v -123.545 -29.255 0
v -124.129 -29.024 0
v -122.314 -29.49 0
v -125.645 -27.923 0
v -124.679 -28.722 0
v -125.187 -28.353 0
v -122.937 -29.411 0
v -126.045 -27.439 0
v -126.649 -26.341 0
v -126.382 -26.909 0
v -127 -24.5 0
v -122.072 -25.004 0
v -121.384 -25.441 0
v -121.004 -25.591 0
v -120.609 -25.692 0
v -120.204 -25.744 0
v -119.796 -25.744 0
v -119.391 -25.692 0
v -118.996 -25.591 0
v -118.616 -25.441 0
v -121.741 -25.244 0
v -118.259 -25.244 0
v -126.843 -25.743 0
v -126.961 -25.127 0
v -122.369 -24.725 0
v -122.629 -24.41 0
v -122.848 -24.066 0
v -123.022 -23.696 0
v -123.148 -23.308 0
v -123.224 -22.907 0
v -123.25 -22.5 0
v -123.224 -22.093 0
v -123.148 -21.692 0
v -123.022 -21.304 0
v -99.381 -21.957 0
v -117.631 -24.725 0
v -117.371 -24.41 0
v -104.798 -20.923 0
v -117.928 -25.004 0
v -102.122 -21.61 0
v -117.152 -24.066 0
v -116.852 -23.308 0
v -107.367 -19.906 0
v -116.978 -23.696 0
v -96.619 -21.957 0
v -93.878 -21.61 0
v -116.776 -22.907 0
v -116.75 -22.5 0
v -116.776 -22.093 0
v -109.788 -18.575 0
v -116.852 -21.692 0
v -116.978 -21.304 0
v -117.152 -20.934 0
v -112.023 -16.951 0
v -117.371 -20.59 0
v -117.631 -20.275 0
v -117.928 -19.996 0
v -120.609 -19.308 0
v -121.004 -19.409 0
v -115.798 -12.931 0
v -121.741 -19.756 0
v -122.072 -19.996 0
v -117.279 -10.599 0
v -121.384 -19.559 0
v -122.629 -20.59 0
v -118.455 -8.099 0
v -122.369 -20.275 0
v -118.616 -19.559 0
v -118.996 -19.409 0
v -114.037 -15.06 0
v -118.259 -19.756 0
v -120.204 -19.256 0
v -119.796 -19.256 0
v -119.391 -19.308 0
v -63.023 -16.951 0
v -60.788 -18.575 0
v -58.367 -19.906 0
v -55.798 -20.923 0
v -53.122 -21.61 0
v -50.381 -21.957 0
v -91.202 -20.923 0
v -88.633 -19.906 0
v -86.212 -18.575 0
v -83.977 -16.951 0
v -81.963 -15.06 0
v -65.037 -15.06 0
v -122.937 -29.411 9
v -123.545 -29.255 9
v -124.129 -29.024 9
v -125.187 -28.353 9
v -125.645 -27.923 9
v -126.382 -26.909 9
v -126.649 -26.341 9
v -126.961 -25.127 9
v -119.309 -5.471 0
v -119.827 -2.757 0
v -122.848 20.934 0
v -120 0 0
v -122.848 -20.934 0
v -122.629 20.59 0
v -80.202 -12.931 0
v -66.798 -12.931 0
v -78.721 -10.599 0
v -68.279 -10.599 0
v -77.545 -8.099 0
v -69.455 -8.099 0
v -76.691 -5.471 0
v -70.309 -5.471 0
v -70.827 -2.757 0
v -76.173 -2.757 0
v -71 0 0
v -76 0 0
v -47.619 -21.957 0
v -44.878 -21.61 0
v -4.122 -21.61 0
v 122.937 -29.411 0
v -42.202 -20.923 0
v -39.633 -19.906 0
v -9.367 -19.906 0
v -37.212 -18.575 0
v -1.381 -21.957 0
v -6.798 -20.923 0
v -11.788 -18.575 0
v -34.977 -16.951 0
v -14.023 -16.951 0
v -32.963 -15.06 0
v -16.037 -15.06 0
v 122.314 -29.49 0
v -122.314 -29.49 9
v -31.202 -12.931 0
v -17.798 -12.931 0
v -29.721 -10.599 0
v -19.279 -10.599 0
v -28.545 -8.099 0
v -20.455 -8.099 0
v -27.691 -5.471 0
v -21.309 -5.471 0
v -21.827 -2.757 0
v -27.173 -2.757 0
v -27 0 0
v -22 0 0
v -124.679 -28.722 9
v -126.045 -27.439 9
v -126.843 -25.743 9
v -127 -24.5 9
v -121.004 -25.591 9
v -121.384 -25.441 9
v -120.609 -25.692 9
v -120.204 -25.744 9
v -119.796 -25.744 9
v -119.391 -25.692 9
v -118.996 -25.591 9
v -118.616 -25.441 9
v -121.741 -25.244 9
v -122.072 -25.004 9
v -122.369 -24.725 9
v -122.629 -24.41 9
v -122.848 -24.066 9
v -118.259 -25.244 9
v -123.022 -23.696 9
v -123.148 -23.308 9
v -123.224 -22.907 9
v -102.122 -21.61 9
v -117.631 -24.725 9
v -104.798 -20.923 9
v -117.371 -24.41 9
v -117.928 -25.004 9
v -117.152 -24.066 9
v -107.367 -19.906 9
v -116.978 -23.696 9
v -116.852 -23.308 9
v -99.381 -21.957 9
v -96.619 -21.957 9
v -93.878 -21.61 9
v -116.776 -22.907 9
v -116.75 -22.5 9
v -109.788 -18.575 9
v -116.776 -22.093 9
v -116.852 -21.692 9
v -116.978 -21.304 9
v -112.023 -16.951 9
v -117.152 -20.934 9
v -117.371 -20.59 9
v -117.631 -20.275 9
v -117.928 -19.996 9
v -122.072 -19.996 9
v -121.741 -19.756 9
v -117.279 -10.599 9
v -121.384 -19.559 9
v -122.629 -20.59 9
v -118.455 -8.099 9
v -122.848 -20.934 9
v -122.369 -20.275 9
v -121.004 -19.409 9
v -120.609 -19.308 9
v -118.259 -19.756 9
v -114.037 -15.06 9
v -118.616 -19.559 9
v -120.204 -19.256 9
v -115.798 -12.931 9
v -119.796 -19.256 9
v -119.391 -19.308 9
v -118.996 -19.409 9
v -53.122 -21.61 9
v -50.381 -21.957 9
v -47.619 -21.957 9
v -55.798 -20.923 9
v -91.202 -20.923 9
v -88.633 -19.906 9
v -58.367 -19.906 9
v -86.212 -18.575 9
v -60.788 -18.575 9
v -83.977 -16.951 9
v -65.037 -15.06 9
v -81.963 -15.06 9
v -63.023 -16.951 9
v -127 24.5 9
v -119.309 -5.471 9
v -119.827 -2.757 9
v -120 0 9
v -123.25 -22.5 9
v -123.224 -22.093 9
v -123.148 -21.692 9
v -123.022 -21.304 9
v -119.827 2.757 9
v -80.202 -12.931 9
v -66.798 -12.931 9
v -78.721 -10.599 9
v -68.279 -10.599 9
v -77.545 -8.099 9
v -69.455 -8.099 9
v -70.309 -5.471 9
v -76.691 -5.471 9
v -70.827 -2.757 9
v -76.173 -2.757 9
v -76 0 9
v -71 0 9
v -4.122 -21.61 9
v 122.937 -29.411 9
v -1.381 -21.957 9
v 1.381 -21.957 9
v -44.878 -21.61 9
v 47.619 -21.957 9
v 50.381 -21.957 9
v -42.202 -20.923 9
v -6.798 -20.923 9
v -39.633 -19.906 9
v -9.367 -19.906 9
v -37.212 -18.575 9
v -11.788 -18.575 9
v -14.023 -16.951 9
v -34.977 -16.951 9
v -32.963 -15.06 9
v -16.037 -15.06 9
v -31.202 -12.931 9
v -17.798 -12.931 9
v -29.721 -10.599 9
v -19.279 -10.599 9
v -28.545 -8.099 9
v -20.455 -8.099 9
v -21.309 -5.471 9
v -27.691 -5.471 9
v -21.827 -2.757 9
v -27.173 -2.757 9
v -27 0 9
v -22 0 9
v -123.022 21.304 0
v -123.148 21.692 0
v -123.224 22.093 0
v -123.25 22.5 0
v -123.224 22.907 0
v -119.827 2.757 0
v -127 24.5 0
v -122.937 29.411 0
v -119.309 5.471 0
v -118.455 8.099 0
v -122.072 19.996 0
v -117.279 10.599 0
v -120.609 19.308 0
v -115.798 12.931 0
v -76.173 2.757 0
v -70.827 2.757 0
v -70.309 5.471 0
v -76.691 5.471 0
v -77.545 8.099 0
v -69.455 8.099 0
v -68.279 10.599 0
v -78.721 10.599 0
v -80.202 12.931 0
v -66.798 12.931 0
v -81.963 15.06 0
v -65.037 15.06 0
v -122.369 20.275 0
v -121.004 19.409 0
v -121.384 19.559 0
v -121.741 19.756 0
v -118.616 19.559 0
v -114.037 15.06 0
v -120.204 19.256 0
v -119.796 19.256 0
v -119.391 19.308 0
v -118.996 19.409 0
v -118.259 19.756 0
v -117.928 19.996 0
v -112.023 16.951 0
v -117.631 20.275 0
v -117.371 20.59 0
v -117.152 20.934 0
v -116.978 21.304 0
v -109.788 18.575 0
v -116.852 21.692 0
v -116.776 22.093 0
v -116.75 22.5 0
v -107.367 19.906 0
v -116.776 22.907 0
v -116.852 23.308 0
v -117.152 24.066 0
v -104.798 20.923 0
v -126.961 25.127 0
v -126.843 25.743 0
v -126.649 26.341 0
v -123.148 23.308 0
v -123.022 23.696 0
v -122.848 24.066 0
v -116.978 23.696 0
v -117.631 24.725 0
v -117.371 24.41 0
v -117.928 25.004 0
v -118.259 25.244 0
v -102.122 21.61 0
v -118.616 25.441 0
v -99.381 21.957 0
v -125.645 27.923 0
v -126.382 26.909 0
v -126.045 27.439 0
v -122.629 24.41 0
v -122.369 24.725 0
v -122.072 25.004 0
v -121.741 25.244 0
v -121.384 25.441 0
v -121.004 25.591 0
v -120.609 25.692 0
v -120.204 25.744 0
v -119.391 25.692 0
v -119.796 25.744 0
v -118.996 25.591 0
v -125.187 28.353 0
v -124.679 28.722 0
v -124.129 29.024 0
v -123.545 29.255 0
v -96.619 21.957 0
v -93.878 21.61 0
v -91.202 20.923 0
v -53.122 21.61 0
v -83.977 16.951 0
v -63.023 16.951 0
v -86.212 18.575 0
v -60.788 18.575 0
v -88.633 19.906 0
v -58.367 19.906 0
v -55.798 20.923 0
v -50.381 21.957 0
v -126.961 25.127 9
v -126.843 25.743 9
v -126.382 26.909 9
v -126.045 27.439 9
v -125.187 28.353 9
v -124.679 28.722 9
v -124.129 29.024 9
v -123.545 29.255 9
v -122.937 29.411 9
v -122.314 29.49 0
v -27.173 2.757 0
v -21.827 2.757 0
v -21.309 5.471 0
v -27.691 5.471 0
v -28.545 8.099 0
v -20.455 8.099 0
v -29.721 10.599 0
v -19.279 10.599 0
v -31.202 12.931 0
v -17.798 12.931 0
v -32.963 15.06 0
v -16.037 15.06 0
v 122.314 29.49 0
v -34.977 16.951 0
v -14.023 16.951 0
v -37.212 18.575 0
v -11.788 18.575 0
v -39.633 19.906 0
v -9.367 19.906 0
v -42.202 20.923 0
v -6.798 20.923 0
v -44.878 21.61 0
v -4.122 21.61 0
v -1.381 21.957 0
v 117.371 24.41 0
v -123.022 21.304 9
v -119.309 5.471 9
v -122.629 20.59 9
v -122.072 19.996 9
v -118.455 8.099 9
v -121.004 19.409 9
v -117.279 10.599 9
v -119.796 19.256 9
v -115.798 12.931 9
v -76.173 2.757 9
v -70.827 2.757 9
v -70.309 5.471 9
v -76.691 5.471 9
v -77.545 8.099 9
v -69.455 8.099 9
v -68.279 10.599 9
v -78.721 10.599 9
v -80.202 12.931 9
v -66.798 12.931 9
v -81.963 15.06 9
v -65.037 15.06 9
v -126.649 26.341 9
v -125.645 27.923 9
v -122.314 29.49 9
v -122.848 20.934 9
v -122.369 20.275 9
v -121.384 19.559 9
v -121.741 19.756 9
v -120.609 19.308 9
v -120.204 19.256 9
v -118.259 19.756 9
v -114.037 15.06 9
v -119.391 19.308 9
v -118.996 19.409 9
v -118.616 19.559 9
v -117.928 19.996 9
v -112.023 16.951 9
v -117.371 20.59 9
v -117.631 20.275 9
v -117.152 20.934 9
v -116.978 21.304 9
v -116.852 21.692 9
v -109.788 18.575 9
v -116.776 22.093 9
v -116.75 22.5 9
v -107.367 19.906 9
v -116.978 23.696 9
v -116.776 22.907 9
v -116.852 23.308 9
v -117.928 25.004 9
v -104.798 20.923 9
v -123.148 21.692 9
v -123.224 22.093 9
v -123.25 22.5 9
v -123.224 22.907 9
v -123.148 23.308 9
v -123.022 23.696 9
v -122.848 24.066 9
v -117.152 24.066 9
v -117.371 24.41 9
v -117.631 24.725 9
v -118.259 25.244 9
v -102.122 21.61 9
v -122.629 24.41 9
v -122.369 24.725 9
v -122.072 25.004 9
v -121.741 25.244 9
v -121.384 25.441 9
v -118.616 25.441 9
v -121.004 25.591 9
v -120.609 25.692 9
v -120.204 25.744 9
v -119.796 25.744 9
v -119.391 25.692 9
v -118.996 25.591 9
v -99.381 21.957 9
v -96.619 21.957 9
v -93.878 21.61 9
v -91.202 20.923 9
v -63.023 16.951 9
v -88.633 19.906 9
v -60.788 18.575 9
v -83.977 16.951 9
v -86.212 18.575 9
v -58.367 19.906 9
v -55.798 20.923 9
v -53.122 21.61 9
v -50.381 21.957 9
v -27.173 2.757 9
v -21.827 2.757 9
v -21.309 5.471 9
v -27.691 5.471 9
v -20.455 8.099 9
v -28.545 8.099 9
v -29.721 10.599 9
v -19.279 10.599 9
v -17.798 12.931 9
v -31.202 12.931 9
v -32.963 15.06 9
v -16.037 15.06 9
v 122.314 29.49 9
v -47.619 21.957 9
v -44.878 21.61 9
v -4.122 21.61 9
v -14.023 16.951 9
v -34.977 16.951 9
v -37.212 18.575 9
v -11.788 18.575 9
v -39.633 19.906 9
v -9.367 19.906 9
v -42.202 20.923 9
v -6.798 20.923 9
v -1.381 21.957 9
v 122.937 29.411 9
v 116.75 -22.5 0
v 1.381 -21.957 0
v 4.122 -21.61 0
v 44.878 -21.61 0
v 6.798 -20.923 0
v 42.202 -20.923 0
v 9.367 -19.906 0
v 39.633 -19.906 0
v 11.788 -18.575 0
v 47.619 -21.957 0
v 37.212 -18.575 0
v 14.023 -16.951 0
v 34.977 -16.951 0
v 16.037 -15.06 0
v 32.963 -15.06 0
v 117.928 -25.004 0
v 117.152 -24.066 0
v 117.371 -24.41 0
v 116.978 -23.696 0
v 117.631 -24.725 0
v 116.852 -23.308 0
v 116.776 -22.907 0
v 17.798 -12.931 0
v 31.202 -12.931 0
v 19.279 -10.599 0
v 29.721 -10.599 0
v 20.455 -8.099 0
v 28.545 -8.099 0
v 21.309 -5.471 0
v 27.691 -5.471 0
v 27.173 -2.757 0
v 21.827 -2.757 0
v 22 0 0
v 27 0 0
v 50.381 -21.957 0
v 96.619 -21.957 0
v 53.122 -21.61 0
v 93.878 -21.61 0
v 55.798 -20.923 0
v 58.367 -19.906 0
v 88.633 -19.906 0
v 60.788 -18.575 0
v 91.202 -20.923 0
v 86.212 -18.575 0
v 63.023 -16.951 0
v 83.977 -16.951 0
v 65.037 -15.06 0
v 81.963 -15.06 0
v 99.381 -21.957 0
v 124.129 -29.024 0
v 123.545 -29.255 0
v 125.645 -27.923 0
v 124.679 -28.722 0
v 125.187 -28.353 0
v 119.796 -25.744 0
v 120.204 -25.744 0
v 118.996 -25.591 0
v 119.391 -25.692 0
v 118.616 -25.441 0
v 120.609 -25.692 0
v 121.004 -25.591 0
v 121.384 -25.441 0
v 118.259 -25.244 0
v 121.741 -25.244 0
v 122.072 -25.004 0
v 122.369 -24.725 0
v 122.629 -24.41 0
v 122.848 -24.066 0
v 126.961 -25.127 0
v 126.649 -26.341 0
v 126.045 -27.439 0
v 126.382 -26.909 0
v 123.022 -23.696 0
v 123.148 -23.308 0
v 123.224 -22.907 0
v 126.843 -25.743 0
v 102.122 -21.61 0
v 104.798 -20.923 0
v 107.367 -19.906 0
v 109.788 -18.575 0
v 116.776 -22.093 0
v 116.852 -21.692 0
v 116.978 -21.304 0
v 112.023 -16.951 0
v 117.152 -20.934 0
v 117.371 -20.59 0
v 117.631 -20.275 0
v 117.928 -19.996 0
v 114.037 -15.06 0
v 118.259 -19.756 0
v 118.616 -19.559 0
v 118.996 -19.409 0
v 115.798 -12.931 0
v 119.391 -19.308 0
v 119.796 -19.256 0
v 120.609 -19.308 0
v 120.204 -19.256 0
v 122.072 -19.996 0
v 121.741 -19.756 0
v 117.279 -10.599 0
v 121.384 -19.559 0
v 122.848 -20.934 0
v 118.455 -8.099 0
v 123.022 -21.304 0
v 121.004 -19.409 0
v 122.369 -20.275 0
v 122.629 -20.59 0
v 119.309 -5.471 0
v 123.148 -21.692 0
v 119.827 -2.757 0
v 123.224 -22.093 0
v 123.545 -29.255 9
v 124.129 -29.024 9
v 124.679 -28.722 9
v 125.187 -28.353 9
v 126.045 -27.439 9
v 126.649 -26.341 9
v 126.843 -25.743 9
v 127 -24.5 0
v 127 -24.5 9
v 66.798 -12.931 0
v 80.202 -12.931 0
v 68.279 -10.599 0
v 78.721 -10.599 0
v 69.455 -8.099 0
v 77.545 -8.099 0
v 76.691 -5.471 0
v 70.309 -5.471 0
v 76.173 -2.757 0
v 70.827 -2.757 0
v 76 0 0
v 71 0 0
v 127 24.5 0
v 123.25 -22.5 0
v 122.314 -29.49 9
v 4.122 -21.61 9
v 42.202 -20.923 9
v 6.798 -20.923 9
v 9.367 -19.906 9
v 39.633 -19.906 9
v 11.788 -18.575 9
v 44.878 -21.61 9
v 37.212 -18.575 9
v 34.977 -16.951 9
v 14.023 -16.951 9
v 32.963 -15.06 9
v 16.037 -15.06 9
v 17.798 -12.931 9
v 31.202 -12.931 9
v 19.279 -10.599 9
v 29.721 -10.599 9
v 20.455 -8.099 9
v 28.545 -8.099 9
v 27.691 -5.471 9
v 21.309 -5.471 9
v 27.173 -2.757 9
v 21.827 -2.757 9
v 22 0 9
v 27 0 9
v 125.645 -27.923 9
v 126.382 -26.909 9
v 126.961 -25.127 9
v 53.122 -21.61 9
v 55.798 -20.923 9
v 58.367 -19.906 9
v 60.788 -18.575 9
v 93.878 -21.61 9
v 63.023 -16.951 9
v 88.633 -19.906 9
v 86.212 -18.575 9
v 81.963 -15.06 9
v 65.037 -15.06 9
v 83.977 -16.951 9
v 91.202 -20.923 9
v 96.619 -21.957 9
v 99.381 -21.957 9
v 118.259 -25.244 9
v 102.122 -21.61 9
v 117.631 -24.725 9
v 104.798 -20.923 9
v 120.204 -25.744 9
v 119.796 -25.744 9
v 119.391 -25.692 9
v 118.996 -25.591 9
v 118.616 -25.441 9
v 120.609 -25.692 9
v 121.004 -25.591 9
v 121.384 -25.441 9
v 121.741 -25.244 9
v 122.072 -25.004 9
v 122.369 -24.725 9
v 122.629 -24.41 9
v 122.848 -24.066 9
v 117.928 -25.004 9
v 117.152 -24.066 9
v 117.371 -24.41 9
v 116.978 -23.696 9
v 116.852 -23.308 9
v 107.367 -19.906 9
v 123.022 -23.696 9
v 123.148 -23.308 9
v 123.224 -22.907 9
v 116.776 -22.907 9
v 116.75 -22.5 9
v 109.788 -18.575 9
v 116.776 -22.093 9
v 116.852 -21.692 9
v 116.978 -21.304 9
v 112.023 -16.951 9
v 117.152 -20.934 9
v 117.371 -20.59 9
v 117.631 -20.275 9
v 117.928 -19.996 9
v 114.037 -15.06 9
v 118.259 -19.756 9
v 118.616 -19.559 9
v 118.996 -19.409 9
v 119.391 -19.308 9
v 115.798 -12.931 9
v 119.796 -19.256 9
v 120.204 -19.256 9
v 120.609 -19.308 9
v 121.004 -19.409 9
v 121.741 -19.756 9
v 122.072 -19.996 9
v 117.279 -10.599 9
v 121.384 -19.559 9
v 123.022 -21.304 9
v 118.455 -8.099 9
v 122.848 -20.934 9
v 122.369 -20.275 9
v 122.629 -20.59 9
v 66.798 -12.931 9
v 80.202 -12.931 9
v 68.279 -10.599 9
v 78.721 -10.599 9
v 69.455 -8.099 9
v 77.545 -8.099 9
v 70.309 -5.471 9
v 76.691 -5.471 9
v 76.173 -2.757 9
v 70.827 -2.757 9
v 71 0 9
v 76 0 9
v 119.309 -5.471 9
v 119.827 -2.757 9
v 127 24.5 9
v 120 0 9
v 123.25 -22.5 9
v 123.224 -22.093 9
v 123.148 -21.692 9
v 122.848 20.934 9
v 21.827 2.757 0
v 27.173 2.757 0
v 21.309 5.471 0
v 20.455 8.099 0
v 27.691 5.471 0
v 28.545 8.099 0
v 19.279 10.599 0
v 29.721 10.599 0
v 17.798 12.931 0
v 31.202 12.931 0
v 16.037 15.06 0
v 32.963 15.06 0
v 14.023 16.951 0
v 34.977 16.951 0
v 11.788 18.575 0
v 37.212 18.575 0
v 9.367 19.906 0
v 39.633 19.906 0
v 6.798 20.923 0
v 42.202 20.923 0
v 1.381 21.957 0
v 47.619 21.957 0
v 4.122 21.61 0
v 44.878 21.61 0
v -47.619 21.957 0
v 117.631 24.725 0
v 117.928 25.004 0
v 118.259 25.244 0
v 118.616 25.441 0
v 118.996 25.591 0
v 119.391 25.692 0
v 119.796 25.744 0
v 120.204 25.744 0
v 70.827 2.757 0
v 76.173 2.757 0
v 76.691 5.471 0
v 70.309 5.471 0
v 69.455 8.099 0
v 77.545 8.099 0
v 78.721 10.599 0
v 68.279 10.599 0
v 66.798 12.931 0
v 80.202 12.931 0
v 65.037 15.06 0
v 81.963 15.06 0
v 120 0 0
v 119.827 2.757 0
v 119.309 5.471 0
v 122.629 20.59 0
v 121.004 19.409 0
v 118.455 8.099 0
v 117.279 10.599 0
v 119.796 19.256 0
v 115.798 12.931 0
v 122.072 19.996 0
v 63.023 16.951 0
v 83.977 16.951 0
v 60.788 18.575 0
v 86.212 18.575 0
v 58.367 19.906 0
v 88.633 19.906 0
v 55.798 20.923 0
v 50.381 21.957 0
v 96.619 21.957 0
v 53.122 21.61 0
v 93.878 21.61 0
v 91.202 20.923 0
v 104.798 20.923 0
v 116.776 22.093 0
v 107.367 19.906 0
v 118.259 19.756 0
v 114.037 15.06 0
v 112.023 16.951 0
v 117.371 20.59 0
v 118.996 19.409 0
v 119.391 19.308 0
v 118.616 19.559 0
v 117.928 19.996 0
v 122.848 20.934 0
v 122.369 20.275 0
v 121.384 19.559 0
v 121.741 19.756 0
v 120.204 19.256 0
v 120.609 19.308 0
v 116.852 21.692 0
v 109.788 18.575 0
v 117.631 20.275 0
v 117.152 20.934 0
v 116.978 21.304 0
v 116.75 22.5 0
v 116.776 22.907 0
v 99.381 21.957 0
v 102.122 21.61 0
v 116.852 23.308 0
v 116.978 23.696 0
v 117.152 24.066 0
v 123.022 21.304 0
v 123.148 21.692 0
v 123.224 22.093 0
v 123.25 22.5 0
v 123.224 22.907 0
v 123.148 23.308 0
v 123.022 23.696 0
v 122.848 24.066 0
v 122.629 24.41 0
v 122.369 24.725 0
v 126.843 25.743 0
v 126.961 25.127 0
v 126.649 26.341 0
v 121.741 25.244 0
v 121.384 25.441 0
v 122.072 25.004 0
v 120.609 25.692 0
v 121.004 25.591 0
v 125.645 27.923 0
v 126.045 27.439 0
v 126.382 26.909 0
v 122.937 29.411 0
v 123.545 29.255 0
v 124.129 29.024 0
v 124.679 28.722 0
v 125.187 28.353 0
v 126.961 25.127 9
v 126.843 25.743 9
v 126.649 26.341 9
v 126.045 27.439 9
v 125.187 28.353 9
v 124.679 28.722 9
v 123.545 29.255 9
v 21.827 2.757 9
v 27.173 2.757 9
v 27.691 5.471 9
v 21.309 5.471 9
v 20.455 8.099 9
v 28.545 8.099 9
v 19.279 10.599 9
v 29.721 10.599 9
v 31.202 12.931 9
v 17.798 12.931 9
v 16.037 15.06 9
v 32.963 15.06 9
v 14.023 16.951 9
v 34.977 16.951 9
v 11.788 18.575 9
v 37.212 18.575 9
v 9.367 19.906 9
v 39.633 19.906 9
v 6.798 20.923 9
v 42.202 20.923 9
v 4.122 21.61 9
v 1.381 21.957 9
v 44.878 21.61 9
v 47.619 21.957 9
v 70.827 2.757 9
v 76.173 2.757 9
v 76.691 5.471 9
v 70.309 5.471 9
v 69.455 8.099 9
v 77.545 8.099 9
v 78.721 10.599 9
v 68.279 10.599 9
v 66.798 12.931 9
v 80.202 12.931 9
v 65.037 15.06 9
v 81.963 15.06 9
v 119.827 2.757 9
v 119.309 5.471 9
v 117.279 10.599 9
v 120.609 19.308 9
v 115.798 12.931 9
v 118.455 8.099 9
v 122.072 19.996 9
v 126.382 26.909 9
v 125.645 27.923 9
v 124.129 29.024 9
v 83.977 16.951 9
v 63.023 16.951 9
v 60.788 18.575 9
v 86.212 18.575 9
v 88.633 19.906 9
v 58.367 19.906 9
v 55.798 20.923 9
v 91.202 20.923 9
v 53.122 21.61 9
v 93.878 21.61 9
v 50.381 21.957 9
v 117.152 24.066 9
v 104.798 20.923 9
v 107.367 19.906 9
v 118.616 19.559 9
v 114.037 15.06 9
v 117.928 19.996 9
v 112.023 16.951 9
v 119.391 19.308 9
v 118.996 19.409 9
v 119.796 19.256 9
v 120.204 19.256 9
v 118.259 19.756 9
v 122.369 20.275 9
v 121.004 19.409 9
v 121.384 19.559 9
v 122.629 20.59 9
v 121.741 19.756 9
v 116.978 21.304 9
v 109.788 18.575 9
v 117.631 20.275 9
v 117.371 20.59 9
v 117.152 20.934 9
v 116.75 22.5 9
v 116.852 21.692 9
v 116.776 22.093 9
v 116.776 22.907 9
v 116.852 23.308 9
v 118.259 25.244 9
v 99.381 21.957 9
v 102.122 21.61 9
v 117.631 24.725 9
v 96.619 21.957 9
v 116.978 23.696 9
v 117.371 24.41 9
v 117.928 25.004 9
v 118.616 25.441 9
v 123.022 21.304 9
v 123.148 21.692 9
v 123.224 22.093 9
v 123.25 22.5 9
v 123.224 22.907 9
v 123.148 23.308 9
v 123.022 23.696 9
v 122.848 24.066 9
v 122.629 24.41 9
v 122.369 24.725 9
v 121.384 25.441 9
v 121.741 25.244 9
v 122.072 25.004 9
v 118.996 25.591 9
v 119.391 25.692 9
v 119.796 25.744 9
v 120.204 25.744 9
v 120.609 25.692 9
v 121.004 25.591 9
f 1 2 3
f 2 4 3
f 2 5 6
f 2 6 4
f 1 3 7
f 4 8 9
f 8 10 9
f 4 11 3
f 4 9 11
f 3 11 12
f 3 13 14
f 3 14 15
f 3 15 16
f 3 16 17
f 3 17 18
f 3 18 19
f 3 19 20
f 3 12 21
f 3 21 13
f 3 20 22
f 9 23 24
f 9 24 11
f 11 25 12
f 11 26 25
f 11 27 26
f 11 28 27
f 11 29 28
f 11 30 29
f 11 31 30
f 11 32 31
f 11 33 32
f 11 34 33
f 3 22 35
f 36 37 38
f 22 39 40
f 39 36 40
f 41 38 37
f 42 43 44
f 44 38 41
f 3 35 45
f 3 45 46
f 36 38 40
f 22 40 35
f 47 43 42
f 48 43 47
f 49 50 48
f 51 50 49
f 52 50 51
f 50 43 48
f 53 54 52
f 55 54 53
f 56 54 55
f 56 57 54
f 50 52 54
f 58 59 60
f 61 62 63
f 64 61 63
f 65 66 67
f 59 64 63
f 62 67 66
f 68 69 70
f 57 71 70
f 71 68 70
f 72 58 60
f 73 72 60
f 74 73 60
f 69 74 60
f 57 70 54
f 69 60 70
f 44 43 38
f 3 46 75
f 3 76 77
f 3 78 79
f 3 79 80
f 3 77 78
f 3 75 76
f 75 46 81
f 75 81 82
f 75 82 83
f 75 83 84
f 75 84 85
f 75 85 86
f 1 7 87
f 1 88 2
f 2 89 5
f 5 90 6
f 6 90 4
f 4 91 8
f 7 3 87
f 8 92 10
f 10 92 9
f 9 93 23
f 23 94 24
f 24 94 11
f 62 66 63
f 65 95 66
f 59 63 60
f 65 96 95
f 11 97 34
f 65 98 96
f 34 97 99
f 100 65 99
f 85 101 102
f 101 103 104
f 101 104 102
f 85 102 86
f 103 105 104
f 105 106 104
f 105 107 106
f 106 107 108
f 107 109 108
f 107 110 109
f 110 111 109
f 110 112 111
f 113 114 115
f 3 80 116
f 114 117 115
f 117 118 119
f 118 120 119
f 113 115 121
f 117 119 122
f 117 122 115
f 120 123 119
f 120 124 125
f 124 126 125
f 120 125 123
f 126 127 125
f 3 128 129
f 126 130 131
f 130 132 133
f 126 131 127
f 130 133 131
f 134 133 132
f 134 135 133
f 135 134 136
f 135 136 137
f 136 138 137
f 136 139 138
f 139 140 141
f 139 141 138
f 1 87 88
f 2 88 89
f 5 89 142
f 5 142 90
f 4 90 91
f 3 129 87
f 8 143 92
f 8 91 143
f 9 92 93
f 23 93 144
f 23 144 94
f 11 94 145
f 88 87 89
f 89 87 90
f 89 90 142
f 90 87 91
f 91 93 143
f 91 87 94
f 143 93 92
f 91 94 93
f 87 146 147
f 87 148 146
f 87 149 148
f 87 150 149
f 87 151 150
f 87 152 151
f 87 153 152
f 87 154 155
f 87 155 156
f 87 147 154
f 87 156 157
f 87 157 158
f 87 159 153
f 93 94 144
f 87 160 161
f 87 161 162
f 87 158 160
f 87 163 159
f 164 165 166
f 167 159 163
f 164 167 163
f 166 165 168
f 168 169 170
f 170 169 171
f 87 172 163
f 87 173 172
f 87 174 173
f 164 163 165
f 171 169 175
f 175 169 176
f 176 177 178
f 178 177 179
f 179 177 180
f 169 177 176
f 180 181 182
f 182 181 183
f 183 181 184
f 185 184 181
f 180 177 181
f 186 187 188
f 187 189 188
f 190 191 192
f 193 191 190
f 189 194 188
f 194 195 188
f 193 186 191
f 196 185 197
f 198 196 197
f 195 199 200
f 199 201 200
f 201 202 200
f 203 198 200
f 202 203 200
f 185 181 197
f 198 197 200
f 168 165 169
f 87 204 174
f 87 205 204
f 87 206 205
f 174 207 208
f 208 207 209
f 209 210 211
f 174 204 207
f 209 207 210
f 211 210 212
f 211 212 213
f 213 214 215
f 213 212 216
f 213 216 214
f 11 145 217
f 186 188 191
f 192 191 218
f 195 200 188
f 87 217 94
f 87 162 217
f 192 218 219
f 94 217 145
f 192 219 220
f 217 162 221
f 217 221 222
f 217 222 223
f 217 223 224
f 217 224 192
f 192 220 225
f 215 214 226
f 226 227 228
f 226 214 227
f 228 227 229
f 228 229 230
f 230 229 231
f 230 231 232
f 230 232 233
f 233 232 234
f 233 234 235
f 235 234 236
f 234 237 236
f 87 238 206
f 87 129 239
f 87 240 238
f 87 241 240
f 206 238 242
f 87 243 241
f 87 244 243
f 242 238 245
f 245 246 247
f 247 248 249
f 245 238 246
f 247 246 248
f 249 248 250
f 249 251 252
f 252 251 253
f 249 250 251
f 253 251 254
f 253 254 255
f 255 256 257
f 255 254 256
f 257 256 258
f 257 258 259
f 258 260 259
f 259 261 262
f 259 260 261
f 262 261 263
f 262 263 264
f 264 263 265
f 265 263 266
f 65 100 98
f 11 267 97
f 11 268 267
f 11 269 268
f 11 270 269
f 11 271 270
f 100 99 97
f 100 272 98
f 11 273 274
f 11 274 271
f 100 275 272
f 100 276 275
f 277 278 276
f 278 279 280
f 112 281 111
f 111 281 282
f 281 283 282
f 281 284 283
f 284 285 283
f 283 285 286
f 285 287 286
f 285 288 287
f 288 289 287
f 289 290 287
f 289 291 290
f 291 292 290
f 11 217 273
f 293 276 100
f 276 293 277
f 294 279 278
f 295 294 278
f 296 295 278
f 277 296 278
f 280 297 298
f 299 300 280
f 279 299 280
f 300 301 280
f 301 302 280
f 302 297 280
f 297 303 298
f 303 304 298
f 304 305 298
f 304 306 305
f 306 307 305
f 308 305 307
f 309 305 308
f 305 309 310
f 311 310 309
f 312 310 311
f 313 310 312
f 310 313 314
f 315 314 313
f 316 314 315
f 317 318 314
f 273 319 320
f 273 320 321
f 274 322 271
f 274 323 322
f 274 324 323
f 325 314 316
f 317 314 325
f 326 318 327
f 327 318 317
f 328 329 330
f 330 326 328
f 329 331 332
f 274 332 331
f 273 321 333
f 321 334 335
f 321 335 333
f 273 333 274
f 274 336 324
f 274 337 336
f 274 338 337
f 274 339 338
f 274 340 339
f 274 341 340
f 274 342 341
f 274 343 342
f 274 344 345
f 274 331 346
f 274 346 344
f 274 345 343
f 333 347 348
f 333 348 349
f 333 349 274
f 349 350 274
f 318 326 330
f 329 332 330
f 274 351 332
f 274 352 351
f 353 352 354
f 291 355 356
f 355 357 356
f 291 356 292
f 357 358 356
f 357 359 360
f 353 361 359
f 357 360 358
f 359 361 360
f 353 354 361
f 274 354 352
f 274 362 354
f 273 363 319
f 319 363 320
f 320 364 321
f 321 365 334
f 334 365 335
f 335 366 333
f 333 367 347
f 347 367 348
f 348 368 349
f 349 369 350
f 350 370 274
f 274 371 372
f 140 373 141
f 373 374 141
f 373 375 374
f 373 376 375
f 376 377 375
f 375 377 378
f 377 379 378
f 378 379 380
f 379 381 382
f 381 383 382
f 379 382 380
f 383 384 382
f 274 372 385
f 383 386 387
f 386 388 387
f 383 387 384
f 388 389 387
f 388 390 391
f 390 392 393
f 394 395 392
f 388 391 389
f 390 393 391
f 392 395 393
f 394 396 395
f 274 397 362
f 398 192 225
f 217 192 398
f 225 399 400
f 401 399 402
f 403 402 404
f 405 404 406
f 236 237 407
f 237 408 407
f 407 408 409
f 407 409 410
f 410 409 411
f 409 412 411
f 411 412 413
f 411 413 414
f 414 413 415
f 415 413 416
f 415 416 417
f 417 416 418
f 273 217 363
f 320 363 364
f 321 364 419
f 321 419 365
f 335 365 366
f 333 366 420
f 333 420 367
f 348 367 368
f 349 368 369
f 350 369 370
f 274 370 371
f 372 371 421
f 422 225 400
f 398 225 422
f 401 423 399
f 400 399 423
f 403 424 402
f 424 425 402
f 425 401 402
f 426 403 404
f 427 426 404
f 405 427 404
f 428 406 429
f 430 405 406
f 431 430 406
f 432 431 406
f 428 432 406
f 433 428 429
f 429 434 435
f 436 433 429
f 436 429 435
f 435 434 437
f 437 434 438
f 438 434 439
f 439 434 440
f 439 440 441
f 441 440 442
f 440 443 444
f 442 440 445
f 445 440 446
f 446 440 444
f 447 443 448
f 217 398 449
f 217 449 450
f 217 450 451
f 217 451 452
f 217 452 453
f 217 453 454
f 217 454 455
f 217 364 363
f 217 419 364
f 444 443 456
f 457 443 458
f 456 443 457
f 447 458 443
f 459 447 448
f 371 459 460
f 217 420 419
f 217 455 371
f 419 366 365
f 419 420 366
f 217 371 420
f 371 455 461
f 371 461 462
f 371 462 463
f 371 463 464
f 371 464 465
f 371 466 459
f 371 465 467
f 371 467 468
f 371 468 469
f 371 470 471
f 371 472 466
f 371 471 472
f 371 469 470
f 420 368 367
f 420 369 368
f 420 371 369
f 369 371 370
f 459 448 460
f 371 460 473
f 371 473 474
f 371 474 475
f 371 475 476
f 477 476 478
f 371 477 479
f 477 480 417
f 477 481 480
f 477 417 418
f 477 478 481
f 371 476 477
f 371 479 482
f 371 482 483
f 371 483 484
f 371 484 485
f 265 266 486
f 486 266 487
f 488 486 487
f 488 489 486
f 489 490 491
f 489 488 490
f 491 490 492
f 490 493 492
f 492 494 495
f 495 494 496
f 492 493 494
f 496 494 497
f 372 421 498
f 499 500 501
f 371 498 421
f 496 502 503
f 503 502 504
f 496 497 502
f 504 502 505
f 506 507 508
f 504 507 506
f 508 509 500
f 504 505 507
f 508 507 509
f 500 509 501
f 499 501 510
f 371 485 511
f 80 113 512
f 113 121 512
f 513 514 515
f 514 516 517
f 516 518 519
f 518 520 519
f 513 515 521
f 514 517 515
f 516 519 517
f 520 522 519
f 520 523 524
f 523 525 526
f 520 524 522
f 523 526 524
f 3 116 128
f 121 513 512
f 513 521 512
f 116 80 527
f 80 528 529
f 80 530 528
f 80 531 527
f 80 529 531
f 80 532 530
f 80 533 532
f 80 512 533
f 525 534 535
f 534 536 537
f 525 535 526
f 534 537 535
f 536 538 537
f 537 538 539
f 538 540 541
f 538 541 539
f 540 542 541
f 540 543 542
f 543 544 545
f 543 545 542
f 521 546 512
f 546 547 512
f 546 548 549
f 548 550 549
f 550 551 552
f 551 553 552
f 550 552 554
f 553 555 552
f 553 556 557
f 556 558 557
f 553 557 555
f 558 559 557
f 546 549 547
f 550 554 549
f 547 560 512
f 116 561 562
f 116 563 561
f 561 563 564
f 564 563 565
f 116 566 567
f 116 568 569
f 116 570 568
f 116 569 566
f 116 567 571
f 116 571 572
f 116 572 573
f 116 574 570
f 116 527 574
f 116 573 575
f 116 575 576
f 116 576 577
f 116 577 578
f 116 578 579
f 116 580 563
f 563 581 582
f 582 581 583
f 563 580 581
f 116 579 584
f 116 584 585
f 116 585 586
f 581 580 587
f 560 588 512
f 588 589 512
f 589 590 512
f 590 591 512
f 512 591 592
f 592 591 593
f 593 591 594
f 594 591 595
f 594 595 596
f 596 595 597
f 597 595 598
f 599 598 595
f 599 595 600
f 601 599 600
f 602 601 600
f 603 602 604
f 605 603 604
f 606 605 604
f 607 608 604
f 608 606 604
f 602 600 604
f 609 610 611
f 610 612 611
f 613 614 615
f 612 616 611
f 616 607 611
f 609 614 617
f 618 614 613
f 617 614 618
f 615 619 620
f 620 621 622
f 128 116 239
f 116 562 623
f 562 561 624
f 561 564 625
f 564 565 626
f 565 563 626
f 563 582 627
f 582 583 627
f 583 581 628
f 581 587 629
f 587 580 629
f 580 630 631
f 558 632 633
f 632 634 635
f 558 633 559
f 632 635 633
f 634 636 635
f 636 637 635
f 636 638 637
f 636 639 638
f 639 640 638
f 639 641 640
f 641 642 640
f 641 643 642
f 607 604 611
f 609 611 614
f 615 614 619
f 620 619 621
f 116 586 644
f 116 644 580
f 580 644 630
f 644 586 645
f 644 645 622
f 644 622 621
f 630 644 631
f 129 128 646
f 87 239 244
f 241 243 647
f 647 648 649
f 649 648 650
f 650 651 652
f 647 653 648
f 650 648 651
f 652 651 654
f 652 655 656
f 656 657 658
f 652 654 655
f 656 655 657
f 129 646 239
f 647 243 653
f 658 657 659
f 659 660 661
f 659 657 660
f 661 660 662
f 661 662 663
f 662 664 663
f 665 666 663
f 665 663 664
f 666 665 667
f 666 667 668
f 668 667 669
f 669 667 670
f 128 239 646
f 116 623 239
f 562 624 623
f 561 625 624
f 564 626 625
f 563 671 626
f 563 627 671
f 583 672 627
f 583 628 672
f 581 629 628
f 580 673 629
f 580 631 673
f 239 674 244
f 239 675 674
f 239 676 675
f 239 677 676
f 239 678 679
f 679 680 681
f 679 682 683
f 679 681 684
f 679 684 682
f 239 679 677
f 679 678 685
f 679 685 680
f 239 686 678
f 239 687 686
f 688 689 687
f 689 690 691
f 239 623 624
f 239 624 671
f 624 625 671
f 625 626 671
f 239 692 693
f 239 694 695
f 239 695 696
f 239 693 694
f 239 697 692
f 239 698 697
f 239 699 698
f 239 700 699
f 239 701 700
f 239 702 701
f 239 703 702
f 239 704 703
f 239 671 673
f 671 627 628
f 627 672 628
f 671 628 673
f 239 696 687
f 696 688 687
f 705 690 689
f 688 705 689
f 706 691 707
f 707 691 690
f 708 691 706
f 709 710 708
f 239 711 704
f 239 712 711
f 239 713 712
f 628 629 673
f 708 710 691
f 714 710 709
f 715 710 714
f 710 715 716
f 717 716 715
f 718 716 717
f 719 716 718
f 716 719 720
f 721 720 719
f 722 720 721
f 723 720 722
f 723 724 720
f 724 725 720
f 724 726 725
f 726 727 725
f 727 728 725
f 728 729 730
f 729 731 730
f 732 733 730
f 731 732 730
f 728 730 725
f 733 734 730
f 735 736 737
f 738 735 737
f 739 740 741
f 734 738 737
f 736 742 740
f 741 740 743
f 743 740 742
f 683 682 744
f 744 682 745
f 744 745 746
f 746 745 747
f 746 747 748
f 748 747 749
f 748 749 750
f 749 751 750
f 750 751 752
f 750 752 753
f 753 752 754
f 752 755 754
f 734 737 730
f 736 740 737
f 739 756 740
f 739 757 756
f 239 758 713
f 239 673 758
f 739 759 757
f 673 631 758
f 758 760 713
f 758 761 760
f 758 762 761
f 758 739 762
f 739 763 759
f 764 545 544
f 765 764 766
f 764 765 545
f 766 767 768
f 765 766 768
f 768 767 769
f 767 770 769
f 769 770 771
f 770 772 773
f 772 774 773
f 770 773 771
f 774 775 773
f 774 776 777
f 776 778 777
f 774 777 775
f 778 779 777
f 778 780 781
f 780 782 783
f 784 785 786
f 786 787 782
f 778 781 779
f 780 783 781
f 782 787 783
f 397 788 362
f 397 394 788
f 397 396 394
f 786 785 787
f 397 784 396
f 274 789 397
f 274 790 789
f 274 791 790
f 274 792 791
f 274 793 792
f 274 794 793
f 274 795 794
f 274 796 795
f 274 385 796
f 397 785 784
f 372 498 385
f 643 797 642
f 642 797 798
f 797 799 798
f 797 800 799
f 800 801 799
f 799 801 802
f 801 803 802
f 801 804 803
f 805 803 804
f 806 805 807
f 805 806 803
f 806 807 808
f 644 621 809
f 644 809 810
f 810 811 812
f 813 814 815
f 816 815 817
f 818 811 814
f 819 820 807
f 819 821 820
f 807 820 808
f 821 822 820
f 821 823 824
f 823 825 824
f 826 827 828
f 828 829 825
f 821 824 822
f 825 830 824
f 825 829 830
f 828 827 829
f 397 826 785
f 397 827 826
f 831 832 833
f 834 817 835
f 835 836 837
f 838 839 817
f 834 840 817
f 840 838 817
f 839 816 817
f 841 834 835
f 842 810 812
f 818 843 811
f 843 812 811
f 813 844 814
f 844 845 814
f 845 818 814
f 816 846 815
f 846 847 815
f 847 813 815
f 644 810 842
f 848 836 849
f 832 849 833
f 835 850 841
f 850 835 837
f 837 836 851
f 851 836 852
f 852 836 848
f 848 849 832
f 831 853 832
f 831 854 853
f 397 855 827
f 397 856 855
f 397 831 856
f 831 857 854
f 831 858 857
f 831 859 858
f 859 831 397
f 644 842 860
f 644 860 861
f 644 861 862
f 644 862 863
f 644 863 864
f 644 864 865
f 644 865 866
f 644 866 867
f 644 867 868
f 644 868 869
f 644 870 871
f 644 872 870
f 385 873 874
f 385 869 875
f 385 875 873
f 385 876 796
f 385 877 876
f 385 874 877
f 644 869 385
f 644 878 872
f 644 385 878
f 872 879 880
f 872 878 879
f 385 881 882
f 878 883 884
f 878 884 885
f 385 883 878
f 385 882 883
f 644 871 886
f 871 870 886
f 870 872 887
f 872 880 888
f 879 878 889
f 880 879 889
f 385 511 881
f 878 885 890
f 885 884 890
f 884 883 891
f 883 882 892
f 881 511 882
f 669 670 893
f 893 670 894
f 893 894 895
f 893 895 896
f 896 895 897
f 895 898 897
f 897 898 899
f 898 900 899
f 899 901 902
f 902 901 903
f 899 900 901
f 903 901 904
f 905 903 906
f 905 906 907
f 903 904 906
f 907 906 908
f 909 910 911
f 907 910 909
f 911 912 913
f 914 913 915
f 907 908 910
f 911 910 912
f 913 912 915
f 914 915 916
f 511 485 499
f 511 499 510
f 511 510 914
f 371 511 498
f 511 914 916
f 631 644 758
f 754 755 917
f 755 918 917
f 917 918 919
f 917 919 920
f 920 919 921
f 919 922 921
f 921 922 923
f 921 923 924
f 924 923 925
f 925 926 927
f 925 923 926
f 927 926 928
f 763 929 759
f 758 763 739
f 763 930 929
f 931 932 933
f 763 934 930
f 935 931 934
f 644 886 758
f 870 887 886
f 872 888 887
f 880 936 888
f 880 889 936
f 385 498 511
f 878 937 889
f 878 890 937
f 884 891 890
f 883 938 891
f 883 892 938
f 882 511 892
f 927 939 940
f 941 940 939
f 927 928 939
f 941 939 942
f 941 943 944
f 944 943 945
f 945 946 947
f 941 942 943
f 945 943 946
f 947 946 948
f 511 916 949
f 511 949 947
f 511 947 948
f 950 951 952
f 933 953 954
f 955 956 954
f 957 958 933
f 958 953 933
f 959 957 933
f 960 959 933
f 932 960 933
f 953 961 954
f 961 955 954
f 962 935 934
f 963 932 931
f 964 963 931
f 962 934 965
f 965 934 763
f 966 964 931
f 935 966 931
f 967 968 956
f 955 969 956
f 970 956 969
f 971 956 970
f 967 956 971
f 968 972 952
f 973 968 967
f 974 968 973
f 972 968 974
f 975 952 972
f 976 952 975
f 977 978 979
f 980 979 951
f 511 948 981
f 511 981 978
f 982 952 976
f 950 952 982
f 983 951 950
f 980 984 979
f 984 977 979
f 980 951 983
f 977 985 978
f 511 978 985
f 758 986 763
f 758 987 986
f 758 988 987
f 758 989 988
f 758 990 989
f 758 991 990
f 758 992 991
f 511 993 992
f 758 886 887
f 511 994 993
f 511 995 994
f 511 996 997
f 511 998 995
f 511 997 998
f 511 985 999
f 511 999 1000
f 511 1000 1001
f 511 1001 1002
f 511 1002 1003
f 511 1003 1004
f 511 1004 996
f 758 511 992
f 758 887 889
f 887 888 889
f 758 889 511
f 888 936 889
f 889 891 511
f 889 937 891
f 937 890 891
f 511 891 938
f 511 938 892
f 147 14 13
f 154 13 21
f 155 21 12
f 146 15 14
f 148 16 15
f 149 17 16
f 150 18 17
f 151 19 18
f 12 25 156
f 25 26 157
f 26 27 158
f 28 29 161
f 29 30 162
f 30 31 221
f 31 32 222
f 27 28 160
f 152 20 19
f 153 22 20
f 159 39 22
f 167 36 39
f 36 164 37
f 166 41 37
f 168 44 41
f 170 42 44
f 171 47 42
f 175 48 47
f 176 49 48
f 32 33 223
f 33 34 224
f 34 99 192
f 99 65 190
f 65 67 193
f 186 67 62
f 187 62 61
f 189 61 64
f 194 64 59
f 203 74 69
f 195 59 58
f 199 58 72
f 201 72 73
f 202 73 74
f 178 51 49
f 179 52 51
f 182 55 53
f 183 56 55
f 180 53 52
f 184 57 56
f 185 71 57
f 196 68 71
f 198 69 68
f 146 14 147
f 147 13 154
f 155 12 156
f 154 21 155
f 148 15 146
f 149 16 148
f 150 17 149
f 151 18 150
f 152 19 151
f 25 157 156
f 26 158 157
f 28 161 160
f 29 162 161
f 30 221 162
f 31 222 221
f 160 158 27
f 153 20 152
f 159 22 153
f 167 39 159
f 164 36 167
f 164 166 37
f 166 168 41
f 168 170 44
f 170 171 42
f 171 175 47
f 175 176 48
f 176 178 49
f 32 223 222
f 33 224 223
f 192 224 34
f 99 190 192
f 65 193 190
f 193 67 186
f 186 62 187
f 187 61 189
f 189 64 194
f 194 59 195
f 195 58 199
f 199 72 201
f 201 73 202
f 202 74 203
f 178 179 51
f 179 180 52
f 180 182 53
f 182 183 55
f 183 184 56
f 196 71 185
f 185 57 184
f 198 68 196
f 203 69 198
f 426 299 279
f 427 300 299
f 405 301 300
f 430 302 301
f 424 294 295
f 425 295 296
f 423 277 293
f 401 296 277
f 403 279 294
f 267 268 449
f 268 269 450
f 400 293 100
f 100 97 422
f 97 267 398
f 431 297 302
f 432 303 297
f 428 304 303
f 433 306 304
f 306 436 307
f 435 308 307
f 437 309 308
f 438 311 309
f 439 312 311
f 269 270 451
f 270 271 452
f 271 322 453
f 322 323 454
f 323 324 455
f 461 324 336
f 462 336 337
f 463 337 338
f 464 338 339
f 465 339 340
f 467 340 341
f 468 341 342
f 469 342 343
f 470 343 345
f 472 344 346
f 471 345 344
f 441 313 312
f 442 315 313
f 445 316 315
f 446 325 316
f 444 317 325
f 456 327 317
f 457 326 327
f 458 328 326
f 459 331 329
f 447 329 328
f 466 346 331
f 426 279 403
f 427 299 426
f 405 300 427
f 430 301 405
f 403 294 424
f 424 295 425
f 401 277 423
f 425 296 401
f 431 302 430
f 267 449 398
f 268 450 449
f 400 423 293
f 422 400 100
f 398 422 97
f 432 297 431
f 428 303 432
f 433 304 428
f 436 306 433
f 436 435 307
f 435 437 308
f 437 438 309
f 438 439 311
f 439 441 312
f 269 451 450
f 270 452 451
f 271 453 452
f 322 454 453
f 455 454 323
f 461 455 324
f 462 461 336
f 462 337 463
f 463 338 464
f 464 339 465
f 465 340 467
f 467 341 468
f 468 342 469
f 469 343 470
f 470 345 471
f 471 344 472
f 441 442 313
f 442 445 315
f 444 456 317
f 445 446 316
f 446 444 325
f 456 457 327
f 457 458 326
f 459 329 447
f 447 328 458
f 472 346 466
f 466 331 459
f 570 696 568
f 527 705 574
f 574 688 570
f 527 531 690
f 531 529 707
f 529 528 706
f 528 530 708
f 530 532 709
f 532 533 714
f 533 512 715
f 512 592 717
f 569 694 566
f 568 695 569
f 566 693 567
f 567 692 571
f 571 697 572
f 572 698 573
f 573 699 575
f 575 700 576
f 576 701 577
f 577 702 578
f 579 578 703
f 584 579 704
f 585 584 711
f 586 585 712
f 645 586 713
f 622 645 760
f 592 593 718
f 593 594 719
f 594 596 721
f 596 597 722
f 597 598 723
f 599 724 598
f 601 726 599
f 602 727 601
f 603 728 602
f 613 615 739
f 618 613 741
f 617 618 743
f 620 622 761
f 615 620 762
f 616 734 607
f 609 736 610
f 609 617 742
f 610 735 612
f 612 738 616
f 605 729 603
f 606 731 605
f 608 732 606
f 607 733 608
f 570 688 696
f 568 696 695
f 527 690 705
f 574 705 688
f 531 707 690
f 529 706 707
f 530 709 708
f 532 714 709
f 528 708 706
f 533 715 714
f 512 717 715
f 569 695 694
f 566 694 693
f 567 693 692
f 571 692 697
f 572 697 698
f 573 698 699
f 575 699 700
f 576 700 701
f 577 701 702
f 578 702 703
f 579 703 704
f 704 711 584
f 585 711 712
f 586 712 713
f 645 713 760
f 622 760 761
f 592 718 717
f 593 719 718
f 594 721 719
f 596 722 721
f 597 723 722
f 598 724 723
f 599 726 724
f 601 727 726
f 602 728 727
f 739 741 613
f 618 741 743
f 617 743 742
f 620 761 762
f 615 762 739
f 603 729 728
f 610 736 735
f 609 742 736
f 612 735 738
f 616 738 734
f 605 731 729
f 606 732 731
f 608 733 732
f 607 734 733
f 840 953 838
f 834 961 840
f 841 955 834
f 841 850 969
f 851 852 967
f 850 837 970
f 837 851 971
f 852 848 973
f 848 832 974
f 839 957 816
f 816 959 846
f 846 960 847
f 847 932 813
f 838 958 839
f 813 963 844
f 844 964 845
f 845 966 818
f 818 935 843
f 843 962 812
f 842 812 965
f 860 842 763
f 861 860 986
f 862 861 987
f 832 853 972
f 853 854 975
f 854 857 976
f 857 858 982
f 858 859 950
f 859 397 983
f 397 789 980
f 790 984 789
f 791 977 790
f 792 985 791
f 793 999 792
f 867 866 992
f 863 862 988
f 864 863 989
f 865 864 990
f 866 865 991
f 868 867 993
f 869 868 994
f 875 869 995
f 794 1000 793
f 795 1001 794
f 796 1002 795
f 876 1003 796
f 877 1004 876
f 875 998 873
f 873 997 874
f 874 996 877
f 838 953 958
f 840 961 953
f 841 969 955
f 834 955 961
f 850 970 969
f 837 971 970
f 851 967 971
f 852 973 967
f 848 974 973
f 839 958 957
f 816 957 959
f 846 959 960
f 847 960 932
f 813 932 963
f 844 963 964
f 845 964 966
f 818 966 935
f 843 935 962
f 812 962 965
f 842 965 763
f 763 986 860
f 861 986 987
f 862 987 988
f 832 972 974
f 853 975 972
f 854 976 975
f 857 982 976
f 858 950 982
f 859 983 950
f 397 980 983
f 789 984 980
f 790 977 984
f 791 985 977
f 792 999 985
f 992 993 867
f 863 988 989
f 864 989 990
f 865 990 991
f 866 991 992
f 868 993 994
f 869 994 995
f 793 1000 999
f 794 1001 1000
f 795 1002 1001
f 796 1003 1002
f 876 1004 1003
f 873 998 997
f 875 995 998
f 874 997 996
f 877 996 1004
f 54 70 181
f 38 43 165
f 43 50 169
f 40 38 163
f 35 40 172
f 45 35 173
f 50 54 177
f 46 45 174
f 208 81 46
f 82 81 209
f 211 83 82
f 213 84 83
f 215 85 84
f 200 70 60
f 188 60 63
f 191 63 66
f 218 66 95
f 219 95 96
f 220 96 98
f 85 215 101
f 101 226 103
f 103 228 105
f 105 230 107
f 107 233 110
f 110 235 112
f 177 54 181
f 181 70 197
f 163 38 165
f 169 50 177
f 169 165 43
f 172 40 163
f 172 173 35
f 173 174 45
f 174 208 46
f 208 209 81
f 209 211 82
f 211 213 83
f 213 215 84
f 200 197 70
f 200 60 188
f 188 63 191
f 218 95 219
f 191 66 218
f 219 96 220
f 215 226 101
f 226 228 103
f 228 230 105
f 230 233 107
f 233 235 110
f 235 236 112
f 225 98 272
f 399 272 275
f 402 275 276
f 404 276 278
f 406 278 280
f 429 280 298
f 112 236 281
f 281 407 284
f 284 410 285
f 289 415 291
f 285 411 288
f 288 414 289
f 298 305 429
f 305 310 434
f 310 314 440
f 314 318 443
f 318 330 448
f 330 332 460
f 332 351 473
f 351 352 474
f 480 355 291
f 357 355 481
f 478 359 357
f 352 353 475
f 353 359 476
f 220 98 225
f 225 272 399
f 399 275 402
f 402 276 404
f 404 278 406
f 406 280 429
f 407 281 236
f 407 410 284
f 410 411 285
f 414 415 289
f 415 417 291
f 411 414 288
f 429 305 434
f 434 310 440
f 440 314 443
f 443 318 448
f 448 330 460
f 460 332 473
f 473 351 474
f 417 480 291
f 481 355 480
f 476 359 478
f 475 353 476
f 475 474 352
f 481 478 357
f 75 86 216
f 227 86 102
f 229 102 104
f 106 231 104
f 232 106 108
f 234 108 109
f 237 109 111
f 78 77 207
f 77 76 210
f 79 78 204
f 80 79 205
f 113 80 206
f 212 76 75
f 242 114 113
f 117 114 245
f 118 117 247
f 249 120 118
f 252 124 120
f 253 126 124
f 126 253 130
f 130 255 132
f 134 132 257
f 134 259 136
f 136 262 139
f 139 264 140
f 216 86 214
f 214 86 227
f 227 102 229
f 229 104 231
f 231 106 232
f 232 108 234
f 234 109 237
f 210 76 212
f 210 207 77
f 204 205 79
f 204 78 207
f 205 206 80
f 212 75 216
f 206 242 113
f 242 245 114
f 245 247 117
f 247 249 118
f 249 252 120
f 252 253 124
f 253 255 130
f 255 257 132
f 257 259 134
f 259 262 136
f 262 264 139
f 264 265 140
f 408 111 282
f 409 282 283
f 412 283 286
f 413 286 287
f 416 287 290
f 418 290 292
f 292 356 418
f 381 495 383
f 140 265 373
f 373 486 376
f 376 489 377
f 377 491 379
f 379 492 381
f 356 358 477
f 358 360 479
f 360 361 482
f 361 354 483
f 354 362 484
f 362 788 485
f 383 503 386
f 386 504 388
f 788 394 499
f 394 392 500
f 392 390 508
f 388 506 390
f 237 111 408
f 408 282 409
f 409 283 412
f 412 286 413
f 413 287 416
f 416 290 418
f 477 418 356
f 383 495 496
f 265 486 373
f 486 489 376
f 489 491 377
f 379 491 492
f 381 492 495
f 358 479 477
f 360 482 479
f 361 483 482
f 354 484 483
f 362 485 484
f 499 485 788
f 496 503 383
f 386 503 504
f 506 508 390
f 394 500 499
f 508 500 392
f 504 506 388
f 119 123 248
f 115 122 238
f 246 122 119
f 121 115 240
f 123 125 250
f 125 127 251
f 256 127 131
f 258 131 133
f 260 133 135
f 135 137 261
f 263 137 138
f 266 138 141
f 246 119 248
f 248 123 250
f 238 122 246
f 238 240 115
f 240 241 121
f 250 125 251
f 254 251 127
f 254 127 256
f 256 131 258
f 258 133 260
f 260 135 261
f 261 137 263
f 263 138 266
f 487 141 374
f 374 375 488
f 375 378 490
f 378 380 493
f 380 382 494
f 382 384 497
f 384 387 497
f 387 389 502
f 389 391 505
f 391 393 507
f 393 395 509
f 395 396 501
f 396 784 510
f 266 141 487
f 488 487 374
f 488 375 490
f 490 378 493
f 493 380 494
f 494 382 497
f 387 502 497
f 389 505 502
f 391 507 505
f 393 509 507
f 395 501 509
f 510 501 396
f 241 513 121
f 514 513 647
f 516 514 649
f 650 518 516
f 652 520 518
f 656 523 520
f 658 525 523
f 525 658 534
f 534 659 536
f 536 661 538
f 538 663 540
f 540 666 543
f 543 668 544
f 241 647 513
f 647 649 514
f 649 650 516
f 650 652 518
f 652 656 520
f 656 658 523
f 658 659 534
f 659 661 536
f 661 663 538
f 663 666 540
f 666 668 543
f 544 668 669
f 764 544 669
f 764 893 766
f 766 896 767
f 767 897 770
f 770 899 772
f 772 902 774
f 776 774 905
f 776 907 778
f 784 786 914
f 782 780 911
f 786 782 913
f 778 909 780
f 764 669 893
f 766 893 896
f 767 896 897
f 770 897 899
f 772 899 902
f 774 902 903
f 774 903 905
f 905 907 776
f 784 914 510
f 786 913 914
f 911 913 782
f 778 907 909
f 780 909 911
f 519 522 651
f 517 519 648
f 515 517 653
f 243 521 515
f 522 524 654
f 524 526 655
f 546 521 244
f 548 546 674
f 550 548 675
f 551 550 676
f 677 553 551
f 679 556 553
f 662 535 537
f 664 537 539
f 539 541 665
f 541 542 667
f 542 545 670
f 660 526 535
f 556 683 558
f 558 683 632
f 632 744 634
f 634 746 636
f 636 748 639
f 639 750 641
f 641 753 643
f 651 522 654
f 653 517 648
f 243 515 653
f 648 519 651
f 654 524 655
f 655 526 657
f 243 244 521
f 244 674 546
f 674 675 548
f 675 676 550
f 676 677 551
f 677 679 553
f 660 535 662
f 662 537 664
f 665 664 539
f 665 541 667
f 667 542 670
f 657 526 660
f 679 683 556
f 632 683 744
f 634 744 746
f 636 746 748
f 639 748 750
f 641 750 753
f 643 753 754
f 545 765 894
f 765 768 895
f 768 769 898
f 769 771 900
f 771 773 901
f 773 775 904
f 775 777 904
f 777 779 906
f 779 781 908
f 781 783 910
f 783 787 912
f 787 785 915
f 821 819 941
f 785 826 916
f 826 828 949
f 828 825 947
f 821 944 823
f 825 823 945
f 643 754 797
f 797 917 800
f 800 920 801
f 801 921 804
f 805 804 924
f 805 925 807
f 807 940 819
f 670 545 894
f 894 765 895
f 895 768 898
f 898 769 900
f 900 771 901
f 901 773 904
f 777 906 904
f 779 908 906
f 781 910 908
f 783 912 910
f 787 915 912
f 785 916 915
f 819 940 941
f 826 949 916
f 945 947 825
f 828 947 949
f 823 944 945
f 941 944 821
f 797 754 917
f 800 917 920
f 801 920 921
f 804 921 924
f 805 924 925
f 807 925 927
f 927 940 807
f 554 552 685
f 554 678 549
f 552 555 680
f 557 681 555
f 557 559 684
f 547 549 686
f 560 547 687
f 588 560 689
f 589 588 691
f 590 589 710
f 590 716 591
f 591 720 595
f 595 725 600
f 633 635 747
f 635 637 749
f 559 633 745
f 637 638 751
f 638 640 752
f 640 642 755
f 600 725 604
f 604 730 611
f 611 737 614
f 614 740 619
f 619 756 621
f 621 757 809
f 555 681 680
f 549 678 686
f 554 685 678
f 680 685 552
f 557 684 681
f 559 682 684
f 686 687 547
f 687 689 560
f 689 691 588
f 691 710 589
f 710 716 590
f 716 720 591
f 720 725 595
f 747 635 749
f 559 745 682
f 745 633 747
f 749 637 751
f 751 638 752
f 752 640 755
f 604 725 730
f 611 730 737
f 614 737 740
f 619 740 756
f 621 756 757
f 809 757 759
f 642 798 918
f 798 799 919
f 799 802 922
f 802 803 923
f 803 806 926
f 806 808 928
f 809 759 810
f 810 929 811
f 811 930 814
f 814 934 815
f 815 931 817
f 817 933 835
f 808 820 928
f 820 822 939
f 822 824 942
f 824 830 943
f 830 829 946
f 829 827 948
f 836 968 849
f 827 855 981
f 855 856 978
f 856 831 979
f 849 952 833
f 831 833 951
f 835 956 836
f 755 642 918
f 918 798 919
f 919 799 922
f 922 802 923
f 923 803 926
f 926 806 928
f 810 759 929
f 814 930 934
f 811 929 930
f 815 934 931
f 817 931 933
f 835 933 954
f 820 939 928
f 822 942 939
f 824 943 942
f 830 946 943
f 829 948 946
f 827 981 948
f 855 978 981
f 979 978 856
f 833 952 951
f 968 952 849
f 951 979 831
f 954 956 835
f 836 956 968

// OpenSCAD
$fn = 50;

difference() {
	union() {
		hull() {
			translate(v = [-122.0, 24.5, 0]) {
				cylinder(h = 9, r = 5);
			}
			translate(v = [122.0, 24.5, 0]) {
				cylinder(h = 9, r = 5);
			}
			translate(v = [-122.0, -24.5, 0]) {
				cylinder(h = 9, r = 5);
			}
			translate(v = [122.0, -24.5, 0]) {
				cylinder(h = 9, r = 5);
			}
		}
	}
	union() {
		translate(v = [-120.0, -22.5, -100.0]) {
			cylinder(h = 200, r = 3.25);
		}
		translate(v = [-120.0, 22.5, -100.0]) {
			cylinder(h = 200, r = 3.25);
		}
		translate(v = [120.0, -22.5, -100.0]) {
			cylinder(h = 200, r = 3.25);
		}
		translate(v = [120.0, 22.5, -100.0]) {
			cylinder(h = 200, r = 3.25);
		}
		translate(v = [-120.0, -22.5, -100.0]) {
			cylinder(h = 200, r = 1.8);
		}
		translate(v = [-120.0, 22.5, -100.0]) {
			cylinder(h = 200, r = 1.8);
		}
		translate(v = [120.0, -22.5, -100.0]) {
			cylinder(h = 200, r = 1.8);
		}
		translate(v = [120.0, 22.5, -100.0]) {
			cylinder(h = 200, r = 1.8);
		}
		translate(v = [-98.0, 0, 0.0]) {
			cylinder(h = 9, r = 22.0);
		}
		translate(v = [-49.0, 0, 0.0]) {
			cylinder(h = 9, r = 22.0);
		}
		cylinder(h = 9, r = 22.0);
		translate(v = [49.0, 0, 0.0]) {
			cylinder(h = 9, r = 22.0);
		}
		translate(v = [98.0, 0, 0.0]) {
			cylinder(h = 9, r = 22.0);
		}
	}
}
